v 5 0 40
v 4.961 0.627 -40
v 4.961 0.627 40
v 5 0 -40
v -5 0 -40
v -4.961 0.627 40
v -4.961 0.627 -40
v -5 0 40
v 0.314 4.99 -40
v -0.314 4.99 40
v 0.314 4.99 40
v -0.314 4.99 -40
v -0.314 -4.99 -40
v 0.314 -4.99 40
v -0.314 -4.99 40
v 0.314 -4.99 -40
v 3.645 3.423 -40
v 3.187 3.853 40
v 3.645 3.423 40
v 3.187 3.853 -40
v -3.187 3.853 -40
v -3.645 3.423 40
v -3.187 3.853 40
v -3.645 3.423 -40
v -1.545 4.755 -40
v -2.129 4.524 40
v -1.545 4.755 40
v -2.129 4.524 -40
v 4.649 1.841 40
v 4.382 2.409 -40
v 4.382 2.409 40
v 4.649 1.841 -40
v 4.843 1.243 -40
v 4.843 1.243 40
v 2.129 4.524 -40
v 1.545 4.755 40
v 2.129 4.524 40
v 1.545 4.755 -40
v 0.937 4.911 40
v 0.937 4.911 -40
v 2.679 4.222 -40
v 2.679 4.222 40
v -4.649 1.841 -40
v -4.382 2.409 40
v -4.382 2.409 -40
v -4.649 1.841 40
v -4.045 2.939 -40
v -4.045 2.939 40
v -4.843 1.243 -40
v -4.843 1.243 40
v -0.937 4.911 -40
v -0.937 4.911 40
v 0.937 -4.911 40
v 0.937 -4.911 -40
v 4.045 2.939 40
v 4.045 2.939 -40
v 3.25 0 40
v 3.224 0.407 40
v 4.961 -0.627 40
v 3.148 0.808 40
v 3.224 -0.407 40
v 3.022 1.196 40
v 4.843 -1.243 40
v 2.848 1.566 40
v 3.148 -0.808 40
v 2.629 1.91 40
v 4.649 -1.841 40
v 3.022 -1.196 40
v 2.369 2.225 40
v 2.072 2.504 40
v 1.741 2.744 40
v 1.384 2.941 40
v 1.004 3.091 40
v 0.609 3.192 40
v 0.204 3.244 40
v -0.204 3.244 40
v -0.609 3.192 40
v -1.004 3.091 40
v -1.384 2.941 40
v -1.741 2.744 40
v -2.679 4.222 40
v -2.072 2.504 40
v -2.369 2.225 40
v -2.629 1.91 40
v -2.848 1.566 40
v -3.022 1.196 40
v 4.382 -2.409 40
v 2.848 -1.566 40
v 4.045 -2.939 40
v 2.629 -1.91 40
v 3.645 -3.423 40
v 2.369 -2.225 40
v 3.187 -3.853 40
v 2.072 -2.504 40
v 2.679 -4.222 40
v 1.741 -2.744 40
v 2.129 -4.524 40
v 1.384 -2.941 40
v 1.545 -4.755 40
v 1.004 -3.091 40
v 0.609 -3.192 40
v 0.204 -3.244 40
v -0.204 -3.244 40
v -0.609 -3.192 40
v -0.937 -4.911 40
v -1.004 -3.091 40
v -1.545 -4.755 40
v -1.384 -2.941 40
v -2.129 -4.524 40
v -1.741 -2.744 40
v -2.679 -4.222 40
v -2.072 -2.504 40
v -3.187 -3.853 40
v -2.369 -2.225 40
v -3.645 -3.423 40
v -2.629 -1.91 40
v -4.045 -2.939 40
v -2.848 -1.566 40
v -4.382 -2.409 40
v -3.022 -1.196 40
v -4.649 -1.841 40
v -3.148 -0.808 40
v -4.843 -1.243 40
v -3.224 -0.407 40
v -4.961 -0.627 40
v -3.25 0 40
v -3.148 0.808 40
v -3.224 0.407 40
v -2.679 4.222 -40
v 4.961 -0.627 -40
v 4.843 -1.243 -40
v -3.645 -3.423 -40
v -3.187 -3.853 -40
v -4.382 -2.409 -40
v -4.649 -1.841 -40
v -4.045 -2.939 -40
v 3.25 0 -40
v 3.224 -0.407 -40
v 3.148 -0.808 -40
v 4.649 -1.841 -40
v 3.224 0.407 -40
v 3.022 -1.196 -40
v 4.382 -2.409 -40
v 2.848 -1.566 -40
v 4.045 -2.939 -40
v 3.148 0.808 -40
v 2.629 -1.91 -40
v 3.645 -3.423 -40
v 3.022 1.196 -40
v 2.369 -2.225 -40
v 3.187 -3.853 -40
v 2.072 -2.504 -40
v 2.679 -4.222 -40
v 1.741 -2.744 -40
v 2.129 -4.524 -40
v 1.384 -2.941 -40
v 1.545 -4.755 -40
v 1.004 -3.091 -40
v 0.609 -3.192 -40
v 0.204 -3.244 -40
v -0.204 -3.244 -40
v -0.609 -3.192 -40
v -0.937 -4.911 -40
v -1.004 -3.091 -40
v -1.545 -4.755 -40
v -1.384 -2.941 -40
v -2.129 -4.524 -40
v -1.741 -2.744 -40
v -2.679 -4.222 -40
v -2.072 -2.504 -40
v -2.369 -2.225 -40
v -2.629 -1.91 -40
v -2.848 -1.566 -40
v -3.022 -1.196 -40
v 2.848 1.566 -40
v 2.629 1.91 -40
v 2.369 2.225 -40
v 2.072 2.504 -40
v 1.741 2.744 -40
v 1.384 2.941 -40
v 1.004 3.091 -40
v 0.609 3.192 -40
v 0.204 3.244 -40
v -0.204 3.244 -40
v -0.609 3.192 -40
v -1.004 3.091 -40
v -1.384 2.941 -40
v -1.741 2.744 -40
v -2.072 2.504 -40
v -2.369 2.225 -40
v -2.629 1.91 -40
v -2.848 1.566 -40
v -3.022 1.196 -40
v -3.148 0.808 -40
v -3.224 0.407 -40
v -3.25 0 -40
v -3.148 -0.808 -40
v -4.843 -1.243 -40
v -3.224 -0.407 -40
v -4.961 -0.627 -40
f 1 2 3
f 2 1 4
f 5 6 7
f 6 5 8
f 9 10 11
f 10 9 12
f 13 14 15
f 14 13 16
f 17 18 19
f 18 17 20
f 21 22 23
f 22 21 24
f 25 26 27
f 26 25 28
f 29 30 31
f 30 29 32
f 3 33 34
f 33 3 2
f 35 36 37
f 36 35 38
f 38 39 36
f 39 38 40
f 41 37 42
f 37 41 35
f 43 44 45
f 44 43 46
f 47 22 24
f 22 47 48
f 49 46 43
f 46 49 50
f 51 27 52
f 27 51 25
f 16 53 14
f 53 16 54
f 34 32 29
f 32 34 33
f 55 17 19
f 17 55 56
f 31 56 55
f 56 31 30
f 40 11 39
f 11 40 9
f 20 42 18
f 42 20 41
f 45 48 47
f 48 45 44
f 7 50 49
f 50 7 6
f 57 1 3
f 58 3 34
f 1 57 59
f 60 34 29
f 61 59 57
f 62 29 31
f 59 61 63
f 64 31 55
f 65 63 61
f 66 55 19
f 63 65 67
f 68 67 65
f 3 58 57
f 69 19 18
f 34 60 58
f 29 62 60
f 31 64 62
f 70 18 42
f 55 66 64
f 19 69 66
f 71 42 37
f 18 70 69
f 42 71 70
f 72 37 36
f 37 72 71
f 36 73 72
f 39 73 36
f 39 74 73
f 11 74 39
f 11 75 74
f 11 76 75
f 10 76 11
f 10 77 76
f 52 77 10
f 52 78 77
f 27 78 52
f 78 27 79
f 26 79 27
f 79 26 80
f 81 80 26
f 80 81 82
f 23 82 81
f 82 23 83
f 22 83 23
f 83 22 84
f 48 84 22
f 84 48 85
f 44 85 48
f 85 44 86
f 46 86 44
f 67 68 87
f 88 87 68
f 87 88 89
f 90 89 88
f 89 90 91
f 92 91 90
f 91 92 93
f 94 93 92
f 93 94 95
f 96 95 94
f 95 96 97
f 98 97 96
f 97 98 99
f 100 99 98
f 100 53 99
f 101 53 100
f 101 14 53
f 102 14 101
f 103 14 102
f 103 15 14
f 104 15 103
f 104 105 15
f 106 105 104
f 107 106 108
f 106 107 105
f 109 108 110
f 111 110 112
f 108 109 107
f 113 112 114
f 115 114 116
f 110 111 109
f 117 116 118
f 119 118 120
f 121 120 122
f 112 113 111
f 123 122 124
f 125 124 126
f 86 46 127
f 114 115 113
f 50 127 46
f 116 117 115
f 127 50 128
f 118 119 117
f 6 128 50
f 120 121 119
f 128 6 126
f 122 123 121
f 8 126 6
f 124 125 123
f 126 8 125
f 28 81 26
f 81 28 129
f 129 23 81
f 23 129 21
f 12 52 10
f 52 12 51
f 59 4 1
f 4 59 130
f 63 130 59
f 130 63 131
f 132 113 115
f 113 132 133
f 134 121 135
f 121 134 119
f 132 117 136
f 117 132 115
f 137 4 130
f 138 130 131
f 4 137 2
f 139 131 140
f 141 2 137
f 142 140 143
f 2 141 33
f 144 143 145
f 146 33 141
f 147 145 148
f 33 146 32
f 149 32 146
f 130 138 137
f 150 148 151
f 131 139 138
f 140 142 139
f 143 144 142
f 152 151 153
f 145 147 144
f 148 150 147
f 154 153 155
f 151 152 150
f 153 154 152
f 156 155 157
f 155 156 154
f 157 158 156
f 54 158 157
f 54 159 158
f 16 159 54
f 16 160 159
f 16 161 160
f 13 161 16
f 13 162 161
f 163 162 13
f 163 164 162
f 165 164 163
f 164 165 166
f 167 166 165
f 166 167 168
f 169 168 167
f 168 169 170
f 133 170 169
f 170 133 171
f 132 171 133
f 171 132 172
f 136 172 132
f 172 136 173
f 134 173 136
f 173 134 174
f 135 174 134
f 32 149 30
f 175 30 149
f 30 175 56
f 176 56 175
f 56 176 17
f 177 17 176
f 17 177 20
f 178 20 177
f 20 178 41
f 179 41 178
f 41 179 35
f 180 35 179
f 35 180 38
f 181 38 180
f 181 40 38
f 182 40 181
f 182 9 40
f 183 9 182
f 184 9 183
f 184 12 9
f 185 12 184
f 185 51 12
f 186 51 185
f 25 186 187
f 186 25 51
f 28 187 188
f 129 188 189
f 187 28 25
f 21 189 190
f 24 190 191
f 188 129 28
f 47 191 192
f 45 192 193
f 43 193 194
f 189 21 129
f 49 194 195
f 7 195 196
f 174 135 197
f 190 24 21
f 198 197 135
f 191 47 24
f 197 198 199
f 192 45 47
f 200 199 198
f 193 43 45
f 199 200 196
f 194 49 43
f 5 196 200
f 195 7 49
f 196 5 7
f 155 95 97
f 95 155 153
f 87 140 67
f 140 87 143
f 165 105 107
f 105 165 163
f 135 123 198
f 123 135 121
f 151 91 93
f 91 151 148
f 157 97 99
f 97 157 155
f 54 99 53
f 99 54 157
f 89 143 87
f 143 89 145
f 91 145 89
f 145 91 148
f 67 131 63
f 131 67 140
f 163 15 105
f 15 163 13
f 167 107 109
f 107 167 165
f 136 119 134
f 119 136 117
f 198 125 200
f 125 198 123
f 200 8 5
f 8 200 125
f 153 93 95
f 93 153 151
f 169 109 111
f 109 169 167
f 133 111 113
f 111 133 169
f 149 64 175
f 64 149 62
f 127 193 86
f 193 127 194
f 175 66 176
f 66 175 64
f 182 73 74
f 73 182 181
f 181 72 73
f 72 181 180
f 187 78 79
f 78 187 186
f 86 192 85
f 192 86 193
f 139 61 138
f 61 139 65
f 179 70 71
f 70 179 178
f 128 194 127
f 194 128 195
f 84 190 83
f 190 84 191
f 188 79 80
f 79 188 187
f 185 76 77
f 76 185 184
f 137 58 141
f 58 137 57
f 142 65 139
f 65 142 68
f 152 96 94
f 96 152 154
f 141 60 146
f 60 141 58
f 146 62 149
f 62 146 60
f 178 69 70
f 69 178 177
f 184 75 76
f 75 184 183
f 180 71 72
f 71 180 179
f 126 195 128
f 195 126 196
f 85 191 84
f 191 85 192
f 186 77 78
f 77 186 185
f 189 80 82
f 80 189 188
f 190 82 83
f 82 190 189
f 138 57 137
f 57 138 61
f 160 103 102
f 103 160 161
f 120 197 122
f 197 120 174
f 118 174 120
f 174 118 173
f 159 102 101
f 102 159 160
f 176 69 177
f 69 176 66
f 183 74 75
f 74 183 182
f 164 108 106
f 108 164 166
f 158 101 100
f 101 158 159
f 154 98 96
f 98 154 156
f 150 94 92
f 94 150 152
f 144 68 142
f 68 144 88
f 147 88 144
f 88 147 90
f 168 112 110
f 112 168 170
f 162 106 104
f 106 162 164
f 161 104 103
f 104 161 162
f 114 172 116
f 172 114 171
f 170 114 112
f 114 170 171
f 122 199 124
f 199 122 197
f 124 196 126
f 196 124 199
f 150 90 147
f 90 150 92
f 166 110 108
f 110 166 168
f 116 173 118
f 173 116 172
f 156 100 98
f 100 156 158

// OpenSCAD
$fn = 50;


difference() {
	union() {
		translate(v = [0, 0, -40.0000000000]) {
			cylinder(h = 80, r = 5.0000000000);
		}
	}
	union() {
		translate(v = [0, 0, -100.0000000000]) {
			cylinder(h = 200, r = 3.2500000000);
		}
	}
}
